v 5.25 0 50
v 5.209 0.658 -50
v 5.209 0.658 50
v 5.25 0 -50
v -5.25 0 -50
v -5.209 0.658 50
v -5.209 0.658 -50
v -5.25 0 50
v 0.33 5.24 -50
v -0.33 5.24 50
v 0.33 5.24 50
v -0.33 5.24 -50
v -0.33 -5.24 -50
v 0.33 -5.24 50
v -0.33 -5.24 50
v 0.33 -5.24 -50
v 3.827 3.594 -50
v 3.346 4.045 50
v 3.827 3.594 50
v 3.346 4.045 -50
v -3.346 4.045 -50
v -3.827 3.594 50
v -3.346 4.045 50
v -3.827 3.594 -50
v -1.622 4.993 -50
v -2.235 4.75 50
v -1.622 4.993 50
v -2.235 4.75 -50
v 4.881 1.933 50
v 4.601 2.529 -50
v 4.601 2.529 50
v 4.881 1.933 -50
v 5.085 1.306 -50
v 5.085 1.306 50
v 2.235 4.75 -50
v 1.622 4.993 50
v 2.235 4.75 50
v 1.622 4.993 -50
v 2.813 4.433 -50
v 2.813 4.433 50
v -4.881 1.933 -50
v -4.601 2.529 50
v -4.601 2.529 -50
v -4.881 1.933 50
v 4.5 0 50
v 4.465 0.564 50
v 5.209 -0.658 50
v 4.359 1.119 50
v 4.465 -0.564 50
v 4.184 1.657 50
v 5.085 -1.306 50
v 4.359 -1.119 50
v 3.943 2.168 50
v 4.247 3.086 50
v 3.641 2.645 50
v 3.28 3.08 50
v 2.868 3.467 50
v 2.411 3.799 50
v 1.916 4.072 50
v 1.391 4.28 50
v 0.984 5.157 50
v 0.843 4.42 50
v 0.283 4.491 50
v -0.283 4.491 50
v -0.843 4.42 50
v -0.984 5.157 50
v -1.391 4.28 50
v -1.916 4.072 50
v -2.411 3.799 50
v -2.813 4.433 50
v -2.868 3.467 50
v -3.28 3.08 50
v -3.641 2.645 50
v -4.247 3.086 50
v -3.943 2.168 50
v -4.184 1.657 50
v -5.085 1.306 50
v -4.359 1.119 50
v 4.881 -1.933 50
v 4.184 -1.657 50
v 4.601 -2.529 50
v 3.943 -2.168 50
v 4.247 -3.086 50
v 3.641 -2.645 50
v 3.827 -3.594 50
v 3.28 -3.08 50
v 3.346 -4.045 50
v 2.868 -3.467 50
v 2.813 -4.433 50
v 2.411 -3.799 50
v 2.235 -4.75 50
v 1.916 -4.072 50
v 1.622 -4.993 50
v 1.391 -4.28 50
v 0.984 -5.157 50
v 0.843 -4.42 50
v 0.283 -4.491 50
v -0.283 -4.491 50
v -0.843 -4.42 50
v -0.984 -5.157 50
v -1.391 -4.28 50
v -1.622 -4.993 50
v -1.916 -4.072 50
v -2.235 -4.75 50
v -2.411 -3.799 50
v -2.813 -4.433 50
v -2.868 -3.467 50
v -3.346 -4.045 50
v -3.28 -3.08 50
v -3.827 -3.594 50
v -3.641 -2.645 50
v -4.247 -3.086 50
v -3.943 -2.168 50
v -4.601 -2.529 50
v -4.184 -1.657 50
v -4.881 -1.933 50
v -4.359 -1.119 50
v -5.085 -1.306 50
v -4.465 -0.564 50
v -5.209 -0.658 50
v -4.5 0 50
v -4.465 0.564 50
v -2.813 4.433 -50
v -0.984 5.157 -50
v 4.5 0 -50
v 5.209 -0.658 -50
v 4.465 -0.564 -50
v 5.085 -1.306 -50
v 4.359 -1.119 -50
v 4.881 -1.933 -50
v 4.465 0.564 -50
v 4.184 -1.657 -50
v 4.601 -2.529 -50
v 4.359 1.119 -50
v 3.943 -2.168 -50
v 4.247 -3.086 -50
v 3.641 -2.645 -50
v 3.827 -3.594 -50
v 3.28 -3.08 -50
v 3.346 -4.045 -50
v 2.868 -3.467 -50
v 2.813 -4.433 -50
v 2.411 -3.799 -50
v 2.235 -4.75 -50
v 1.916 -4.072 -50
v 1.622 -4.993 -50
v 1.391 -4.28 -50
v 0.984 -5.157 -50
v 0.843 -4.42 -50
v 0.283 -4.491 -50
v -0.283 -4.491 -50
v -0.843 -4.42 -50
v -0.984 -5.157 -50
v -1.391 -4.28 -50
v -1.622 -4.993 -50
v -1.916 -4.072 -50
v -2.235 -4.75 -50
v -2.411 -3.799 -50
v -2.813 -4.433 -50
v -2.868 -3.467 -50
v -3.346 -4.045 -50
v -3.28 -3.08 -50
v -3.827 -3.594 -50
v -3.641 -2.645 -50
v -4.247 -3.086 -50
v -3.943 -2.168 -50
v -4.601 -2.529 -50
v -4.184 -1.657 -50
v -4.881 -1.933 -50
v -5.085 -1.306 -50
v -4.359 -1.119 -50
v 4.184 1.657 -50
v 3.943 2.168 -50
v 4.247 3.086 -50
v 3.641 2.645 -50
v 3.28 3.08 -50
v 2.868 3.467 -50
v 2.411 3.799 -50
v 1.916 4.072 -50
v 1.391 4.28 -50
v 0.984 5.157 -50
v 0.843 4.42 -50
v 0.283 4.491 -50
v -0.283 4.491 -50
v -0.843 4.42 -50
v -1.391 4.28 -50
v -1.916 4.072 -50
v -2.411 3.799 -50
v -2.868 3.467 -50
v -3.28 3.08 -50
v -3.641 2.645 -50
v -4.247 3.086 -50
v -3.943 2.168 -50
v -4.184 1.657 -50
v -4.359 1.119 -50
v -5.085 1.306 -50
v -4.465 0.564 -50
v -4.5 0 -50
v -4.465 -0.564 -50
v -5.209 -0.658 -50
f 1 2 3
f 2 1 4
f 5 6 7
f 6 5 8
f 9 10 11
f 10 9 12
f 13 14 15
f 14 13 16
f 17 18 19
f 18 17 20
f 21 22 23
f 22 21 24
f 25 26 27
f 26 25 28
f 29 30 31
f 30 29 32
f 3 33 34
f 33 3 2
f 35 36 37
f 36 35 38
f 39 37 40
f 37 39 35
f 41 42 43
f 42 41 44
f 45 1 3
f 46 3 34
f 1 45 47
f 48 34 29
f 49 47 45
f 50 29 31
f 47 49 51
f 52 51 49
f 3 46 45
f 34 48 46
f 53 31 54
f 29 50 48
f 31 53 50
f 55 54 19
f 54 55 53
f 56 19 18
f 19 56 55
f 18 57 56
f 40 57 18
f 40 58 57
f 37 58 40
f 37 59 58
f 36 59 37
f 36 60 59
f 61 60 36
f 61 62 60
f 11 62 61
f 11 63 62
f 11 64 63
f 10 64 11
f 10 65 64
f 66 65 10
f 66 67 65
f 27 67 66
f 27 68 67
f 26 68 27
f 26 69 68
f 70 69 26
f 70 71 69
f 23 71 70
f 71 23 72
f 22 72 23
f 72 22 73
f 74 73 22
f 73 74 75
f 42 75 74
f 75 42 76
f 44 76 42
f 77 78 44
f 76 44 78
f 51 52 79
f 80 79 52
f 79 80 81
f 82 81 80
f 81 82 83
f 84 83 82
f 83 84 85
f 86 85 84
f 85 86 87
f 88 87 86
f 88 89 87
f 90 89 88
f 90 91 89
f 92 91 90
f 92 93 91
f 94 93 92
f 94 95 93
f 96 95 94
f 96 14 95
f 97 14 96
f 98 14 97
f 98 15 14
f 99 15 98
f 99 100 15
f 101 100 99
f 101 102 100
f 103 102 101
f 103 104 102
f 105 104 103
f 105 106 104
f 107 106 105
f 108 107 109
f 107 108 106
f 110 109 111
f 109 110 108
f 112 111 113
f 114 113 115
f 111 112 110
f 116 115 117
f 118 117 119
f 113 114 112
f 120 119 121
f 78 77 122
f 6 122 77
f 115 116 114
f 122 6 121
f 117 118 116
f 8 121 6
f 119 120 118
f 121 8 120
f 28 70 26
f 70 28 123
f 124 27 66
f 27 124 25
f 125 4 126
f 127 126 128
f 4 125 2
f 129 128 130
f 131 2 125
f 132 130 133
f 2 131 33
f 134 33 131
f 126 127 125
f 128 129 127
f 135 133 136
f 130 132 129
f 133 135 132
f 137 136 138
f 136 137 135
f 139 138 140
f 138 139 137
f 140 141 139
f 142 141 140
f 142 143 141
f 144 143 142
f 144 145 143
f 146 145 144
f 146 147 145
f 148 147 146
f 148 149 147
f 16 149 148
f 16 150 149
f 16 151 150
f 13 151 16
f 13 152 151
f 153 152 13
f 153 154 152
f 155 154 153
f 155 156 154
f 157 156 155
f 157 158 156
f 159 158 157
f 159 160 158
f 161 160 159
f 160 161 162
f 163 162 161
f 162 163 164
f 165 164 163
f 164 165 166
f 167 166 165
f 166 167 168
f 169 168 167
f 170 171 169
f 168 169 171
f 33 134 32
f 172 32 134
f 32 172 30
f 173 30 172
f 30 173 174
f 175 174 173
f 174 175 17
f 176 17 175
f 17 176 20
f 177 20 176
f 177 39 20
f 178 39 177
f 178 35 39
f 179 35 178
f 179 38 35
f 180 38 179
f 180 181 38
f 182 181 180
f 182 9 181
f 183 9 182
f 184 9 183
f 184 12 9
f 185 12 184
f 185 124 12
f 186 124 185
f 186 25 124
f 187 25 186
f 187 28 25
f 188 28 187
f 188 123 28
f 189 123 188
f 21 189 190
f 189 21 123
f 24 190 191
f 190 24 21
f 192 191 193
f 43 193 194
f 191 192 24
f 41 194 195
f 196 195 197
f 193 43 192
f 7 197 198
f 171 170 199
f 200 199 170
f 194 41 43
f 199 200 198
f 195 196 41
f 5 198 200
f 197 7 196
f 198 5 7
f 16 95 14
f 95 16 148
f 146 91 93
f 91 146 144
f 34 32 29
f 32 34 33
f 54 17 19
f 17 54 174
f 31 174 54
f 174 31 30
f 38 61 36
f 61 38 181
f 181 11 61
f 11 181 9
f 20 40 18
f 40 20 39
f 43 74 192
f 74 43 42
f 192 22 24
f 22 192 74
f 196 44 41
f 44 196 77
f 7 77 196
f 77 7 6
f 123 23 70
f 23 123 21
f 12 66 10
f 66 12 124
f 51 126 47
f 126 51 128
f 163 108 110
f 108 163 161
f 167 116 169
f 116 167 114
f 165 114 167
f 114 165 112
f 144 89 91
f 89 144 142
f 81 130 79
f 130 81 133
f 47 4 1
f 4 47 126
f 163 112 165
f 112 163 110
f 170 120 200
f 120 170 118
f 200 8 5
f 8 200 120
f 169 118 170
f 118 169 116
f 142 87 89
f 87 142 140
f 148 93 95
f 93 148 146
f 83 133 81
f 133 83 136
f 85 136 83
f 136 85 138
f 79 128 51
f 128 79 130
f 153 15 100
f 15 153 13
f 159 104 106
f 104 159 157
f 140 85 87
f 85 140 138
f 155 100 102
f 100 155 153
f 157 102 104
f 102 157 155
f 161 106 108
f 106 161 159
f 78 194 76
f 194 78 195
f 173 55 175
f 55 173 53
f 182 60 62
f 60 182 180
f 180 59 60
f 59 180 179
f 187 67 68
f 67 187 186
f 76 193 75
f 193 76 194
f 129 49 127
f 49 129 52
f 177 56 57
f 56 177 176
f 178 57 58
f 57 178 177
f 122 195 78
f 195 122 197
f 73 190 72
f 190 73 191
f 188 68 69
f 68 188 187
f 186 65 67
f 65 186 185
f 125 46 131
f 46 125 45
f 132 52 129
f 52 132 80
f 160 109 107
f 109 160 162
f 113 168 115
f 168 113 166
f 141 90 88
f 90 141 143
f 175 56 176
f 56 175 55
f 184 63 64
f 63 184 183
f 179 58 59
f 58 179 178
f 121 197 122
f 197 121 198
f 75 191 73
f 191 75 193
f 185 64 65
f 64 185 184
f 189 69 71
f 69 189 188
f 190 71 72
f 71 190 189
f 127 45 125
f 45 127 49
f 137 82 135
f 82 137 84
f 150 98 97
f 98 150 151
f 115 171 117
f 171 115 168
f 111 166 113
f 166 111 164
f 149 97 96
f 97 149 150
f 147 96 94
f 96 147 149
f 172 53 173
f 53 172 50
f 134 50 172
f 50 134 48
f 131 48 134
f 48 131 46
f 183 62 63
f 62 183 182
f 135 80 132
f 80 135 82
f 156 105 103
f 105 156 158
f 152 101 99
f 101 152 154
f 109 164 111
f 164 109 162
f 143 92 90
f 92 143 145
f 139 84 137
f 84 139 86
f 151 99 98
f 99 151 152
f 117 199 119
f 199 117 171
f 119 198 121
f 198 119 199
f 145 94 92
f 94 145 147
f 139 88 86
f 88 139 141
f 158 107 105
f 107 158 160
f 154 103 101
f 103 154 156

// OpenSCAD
$fn = 50;


difference() {
	union() {
		translate(v = [0, 0, -50.0000000000]) {
			cylinder(h = 100, r = 5.2500000000);
		}
	}
	union() {
		translate(v = [0, 0, -100.0000000000]) {
			cylinder(h = 200, r = 4.5000000000);
		}
	}
}
